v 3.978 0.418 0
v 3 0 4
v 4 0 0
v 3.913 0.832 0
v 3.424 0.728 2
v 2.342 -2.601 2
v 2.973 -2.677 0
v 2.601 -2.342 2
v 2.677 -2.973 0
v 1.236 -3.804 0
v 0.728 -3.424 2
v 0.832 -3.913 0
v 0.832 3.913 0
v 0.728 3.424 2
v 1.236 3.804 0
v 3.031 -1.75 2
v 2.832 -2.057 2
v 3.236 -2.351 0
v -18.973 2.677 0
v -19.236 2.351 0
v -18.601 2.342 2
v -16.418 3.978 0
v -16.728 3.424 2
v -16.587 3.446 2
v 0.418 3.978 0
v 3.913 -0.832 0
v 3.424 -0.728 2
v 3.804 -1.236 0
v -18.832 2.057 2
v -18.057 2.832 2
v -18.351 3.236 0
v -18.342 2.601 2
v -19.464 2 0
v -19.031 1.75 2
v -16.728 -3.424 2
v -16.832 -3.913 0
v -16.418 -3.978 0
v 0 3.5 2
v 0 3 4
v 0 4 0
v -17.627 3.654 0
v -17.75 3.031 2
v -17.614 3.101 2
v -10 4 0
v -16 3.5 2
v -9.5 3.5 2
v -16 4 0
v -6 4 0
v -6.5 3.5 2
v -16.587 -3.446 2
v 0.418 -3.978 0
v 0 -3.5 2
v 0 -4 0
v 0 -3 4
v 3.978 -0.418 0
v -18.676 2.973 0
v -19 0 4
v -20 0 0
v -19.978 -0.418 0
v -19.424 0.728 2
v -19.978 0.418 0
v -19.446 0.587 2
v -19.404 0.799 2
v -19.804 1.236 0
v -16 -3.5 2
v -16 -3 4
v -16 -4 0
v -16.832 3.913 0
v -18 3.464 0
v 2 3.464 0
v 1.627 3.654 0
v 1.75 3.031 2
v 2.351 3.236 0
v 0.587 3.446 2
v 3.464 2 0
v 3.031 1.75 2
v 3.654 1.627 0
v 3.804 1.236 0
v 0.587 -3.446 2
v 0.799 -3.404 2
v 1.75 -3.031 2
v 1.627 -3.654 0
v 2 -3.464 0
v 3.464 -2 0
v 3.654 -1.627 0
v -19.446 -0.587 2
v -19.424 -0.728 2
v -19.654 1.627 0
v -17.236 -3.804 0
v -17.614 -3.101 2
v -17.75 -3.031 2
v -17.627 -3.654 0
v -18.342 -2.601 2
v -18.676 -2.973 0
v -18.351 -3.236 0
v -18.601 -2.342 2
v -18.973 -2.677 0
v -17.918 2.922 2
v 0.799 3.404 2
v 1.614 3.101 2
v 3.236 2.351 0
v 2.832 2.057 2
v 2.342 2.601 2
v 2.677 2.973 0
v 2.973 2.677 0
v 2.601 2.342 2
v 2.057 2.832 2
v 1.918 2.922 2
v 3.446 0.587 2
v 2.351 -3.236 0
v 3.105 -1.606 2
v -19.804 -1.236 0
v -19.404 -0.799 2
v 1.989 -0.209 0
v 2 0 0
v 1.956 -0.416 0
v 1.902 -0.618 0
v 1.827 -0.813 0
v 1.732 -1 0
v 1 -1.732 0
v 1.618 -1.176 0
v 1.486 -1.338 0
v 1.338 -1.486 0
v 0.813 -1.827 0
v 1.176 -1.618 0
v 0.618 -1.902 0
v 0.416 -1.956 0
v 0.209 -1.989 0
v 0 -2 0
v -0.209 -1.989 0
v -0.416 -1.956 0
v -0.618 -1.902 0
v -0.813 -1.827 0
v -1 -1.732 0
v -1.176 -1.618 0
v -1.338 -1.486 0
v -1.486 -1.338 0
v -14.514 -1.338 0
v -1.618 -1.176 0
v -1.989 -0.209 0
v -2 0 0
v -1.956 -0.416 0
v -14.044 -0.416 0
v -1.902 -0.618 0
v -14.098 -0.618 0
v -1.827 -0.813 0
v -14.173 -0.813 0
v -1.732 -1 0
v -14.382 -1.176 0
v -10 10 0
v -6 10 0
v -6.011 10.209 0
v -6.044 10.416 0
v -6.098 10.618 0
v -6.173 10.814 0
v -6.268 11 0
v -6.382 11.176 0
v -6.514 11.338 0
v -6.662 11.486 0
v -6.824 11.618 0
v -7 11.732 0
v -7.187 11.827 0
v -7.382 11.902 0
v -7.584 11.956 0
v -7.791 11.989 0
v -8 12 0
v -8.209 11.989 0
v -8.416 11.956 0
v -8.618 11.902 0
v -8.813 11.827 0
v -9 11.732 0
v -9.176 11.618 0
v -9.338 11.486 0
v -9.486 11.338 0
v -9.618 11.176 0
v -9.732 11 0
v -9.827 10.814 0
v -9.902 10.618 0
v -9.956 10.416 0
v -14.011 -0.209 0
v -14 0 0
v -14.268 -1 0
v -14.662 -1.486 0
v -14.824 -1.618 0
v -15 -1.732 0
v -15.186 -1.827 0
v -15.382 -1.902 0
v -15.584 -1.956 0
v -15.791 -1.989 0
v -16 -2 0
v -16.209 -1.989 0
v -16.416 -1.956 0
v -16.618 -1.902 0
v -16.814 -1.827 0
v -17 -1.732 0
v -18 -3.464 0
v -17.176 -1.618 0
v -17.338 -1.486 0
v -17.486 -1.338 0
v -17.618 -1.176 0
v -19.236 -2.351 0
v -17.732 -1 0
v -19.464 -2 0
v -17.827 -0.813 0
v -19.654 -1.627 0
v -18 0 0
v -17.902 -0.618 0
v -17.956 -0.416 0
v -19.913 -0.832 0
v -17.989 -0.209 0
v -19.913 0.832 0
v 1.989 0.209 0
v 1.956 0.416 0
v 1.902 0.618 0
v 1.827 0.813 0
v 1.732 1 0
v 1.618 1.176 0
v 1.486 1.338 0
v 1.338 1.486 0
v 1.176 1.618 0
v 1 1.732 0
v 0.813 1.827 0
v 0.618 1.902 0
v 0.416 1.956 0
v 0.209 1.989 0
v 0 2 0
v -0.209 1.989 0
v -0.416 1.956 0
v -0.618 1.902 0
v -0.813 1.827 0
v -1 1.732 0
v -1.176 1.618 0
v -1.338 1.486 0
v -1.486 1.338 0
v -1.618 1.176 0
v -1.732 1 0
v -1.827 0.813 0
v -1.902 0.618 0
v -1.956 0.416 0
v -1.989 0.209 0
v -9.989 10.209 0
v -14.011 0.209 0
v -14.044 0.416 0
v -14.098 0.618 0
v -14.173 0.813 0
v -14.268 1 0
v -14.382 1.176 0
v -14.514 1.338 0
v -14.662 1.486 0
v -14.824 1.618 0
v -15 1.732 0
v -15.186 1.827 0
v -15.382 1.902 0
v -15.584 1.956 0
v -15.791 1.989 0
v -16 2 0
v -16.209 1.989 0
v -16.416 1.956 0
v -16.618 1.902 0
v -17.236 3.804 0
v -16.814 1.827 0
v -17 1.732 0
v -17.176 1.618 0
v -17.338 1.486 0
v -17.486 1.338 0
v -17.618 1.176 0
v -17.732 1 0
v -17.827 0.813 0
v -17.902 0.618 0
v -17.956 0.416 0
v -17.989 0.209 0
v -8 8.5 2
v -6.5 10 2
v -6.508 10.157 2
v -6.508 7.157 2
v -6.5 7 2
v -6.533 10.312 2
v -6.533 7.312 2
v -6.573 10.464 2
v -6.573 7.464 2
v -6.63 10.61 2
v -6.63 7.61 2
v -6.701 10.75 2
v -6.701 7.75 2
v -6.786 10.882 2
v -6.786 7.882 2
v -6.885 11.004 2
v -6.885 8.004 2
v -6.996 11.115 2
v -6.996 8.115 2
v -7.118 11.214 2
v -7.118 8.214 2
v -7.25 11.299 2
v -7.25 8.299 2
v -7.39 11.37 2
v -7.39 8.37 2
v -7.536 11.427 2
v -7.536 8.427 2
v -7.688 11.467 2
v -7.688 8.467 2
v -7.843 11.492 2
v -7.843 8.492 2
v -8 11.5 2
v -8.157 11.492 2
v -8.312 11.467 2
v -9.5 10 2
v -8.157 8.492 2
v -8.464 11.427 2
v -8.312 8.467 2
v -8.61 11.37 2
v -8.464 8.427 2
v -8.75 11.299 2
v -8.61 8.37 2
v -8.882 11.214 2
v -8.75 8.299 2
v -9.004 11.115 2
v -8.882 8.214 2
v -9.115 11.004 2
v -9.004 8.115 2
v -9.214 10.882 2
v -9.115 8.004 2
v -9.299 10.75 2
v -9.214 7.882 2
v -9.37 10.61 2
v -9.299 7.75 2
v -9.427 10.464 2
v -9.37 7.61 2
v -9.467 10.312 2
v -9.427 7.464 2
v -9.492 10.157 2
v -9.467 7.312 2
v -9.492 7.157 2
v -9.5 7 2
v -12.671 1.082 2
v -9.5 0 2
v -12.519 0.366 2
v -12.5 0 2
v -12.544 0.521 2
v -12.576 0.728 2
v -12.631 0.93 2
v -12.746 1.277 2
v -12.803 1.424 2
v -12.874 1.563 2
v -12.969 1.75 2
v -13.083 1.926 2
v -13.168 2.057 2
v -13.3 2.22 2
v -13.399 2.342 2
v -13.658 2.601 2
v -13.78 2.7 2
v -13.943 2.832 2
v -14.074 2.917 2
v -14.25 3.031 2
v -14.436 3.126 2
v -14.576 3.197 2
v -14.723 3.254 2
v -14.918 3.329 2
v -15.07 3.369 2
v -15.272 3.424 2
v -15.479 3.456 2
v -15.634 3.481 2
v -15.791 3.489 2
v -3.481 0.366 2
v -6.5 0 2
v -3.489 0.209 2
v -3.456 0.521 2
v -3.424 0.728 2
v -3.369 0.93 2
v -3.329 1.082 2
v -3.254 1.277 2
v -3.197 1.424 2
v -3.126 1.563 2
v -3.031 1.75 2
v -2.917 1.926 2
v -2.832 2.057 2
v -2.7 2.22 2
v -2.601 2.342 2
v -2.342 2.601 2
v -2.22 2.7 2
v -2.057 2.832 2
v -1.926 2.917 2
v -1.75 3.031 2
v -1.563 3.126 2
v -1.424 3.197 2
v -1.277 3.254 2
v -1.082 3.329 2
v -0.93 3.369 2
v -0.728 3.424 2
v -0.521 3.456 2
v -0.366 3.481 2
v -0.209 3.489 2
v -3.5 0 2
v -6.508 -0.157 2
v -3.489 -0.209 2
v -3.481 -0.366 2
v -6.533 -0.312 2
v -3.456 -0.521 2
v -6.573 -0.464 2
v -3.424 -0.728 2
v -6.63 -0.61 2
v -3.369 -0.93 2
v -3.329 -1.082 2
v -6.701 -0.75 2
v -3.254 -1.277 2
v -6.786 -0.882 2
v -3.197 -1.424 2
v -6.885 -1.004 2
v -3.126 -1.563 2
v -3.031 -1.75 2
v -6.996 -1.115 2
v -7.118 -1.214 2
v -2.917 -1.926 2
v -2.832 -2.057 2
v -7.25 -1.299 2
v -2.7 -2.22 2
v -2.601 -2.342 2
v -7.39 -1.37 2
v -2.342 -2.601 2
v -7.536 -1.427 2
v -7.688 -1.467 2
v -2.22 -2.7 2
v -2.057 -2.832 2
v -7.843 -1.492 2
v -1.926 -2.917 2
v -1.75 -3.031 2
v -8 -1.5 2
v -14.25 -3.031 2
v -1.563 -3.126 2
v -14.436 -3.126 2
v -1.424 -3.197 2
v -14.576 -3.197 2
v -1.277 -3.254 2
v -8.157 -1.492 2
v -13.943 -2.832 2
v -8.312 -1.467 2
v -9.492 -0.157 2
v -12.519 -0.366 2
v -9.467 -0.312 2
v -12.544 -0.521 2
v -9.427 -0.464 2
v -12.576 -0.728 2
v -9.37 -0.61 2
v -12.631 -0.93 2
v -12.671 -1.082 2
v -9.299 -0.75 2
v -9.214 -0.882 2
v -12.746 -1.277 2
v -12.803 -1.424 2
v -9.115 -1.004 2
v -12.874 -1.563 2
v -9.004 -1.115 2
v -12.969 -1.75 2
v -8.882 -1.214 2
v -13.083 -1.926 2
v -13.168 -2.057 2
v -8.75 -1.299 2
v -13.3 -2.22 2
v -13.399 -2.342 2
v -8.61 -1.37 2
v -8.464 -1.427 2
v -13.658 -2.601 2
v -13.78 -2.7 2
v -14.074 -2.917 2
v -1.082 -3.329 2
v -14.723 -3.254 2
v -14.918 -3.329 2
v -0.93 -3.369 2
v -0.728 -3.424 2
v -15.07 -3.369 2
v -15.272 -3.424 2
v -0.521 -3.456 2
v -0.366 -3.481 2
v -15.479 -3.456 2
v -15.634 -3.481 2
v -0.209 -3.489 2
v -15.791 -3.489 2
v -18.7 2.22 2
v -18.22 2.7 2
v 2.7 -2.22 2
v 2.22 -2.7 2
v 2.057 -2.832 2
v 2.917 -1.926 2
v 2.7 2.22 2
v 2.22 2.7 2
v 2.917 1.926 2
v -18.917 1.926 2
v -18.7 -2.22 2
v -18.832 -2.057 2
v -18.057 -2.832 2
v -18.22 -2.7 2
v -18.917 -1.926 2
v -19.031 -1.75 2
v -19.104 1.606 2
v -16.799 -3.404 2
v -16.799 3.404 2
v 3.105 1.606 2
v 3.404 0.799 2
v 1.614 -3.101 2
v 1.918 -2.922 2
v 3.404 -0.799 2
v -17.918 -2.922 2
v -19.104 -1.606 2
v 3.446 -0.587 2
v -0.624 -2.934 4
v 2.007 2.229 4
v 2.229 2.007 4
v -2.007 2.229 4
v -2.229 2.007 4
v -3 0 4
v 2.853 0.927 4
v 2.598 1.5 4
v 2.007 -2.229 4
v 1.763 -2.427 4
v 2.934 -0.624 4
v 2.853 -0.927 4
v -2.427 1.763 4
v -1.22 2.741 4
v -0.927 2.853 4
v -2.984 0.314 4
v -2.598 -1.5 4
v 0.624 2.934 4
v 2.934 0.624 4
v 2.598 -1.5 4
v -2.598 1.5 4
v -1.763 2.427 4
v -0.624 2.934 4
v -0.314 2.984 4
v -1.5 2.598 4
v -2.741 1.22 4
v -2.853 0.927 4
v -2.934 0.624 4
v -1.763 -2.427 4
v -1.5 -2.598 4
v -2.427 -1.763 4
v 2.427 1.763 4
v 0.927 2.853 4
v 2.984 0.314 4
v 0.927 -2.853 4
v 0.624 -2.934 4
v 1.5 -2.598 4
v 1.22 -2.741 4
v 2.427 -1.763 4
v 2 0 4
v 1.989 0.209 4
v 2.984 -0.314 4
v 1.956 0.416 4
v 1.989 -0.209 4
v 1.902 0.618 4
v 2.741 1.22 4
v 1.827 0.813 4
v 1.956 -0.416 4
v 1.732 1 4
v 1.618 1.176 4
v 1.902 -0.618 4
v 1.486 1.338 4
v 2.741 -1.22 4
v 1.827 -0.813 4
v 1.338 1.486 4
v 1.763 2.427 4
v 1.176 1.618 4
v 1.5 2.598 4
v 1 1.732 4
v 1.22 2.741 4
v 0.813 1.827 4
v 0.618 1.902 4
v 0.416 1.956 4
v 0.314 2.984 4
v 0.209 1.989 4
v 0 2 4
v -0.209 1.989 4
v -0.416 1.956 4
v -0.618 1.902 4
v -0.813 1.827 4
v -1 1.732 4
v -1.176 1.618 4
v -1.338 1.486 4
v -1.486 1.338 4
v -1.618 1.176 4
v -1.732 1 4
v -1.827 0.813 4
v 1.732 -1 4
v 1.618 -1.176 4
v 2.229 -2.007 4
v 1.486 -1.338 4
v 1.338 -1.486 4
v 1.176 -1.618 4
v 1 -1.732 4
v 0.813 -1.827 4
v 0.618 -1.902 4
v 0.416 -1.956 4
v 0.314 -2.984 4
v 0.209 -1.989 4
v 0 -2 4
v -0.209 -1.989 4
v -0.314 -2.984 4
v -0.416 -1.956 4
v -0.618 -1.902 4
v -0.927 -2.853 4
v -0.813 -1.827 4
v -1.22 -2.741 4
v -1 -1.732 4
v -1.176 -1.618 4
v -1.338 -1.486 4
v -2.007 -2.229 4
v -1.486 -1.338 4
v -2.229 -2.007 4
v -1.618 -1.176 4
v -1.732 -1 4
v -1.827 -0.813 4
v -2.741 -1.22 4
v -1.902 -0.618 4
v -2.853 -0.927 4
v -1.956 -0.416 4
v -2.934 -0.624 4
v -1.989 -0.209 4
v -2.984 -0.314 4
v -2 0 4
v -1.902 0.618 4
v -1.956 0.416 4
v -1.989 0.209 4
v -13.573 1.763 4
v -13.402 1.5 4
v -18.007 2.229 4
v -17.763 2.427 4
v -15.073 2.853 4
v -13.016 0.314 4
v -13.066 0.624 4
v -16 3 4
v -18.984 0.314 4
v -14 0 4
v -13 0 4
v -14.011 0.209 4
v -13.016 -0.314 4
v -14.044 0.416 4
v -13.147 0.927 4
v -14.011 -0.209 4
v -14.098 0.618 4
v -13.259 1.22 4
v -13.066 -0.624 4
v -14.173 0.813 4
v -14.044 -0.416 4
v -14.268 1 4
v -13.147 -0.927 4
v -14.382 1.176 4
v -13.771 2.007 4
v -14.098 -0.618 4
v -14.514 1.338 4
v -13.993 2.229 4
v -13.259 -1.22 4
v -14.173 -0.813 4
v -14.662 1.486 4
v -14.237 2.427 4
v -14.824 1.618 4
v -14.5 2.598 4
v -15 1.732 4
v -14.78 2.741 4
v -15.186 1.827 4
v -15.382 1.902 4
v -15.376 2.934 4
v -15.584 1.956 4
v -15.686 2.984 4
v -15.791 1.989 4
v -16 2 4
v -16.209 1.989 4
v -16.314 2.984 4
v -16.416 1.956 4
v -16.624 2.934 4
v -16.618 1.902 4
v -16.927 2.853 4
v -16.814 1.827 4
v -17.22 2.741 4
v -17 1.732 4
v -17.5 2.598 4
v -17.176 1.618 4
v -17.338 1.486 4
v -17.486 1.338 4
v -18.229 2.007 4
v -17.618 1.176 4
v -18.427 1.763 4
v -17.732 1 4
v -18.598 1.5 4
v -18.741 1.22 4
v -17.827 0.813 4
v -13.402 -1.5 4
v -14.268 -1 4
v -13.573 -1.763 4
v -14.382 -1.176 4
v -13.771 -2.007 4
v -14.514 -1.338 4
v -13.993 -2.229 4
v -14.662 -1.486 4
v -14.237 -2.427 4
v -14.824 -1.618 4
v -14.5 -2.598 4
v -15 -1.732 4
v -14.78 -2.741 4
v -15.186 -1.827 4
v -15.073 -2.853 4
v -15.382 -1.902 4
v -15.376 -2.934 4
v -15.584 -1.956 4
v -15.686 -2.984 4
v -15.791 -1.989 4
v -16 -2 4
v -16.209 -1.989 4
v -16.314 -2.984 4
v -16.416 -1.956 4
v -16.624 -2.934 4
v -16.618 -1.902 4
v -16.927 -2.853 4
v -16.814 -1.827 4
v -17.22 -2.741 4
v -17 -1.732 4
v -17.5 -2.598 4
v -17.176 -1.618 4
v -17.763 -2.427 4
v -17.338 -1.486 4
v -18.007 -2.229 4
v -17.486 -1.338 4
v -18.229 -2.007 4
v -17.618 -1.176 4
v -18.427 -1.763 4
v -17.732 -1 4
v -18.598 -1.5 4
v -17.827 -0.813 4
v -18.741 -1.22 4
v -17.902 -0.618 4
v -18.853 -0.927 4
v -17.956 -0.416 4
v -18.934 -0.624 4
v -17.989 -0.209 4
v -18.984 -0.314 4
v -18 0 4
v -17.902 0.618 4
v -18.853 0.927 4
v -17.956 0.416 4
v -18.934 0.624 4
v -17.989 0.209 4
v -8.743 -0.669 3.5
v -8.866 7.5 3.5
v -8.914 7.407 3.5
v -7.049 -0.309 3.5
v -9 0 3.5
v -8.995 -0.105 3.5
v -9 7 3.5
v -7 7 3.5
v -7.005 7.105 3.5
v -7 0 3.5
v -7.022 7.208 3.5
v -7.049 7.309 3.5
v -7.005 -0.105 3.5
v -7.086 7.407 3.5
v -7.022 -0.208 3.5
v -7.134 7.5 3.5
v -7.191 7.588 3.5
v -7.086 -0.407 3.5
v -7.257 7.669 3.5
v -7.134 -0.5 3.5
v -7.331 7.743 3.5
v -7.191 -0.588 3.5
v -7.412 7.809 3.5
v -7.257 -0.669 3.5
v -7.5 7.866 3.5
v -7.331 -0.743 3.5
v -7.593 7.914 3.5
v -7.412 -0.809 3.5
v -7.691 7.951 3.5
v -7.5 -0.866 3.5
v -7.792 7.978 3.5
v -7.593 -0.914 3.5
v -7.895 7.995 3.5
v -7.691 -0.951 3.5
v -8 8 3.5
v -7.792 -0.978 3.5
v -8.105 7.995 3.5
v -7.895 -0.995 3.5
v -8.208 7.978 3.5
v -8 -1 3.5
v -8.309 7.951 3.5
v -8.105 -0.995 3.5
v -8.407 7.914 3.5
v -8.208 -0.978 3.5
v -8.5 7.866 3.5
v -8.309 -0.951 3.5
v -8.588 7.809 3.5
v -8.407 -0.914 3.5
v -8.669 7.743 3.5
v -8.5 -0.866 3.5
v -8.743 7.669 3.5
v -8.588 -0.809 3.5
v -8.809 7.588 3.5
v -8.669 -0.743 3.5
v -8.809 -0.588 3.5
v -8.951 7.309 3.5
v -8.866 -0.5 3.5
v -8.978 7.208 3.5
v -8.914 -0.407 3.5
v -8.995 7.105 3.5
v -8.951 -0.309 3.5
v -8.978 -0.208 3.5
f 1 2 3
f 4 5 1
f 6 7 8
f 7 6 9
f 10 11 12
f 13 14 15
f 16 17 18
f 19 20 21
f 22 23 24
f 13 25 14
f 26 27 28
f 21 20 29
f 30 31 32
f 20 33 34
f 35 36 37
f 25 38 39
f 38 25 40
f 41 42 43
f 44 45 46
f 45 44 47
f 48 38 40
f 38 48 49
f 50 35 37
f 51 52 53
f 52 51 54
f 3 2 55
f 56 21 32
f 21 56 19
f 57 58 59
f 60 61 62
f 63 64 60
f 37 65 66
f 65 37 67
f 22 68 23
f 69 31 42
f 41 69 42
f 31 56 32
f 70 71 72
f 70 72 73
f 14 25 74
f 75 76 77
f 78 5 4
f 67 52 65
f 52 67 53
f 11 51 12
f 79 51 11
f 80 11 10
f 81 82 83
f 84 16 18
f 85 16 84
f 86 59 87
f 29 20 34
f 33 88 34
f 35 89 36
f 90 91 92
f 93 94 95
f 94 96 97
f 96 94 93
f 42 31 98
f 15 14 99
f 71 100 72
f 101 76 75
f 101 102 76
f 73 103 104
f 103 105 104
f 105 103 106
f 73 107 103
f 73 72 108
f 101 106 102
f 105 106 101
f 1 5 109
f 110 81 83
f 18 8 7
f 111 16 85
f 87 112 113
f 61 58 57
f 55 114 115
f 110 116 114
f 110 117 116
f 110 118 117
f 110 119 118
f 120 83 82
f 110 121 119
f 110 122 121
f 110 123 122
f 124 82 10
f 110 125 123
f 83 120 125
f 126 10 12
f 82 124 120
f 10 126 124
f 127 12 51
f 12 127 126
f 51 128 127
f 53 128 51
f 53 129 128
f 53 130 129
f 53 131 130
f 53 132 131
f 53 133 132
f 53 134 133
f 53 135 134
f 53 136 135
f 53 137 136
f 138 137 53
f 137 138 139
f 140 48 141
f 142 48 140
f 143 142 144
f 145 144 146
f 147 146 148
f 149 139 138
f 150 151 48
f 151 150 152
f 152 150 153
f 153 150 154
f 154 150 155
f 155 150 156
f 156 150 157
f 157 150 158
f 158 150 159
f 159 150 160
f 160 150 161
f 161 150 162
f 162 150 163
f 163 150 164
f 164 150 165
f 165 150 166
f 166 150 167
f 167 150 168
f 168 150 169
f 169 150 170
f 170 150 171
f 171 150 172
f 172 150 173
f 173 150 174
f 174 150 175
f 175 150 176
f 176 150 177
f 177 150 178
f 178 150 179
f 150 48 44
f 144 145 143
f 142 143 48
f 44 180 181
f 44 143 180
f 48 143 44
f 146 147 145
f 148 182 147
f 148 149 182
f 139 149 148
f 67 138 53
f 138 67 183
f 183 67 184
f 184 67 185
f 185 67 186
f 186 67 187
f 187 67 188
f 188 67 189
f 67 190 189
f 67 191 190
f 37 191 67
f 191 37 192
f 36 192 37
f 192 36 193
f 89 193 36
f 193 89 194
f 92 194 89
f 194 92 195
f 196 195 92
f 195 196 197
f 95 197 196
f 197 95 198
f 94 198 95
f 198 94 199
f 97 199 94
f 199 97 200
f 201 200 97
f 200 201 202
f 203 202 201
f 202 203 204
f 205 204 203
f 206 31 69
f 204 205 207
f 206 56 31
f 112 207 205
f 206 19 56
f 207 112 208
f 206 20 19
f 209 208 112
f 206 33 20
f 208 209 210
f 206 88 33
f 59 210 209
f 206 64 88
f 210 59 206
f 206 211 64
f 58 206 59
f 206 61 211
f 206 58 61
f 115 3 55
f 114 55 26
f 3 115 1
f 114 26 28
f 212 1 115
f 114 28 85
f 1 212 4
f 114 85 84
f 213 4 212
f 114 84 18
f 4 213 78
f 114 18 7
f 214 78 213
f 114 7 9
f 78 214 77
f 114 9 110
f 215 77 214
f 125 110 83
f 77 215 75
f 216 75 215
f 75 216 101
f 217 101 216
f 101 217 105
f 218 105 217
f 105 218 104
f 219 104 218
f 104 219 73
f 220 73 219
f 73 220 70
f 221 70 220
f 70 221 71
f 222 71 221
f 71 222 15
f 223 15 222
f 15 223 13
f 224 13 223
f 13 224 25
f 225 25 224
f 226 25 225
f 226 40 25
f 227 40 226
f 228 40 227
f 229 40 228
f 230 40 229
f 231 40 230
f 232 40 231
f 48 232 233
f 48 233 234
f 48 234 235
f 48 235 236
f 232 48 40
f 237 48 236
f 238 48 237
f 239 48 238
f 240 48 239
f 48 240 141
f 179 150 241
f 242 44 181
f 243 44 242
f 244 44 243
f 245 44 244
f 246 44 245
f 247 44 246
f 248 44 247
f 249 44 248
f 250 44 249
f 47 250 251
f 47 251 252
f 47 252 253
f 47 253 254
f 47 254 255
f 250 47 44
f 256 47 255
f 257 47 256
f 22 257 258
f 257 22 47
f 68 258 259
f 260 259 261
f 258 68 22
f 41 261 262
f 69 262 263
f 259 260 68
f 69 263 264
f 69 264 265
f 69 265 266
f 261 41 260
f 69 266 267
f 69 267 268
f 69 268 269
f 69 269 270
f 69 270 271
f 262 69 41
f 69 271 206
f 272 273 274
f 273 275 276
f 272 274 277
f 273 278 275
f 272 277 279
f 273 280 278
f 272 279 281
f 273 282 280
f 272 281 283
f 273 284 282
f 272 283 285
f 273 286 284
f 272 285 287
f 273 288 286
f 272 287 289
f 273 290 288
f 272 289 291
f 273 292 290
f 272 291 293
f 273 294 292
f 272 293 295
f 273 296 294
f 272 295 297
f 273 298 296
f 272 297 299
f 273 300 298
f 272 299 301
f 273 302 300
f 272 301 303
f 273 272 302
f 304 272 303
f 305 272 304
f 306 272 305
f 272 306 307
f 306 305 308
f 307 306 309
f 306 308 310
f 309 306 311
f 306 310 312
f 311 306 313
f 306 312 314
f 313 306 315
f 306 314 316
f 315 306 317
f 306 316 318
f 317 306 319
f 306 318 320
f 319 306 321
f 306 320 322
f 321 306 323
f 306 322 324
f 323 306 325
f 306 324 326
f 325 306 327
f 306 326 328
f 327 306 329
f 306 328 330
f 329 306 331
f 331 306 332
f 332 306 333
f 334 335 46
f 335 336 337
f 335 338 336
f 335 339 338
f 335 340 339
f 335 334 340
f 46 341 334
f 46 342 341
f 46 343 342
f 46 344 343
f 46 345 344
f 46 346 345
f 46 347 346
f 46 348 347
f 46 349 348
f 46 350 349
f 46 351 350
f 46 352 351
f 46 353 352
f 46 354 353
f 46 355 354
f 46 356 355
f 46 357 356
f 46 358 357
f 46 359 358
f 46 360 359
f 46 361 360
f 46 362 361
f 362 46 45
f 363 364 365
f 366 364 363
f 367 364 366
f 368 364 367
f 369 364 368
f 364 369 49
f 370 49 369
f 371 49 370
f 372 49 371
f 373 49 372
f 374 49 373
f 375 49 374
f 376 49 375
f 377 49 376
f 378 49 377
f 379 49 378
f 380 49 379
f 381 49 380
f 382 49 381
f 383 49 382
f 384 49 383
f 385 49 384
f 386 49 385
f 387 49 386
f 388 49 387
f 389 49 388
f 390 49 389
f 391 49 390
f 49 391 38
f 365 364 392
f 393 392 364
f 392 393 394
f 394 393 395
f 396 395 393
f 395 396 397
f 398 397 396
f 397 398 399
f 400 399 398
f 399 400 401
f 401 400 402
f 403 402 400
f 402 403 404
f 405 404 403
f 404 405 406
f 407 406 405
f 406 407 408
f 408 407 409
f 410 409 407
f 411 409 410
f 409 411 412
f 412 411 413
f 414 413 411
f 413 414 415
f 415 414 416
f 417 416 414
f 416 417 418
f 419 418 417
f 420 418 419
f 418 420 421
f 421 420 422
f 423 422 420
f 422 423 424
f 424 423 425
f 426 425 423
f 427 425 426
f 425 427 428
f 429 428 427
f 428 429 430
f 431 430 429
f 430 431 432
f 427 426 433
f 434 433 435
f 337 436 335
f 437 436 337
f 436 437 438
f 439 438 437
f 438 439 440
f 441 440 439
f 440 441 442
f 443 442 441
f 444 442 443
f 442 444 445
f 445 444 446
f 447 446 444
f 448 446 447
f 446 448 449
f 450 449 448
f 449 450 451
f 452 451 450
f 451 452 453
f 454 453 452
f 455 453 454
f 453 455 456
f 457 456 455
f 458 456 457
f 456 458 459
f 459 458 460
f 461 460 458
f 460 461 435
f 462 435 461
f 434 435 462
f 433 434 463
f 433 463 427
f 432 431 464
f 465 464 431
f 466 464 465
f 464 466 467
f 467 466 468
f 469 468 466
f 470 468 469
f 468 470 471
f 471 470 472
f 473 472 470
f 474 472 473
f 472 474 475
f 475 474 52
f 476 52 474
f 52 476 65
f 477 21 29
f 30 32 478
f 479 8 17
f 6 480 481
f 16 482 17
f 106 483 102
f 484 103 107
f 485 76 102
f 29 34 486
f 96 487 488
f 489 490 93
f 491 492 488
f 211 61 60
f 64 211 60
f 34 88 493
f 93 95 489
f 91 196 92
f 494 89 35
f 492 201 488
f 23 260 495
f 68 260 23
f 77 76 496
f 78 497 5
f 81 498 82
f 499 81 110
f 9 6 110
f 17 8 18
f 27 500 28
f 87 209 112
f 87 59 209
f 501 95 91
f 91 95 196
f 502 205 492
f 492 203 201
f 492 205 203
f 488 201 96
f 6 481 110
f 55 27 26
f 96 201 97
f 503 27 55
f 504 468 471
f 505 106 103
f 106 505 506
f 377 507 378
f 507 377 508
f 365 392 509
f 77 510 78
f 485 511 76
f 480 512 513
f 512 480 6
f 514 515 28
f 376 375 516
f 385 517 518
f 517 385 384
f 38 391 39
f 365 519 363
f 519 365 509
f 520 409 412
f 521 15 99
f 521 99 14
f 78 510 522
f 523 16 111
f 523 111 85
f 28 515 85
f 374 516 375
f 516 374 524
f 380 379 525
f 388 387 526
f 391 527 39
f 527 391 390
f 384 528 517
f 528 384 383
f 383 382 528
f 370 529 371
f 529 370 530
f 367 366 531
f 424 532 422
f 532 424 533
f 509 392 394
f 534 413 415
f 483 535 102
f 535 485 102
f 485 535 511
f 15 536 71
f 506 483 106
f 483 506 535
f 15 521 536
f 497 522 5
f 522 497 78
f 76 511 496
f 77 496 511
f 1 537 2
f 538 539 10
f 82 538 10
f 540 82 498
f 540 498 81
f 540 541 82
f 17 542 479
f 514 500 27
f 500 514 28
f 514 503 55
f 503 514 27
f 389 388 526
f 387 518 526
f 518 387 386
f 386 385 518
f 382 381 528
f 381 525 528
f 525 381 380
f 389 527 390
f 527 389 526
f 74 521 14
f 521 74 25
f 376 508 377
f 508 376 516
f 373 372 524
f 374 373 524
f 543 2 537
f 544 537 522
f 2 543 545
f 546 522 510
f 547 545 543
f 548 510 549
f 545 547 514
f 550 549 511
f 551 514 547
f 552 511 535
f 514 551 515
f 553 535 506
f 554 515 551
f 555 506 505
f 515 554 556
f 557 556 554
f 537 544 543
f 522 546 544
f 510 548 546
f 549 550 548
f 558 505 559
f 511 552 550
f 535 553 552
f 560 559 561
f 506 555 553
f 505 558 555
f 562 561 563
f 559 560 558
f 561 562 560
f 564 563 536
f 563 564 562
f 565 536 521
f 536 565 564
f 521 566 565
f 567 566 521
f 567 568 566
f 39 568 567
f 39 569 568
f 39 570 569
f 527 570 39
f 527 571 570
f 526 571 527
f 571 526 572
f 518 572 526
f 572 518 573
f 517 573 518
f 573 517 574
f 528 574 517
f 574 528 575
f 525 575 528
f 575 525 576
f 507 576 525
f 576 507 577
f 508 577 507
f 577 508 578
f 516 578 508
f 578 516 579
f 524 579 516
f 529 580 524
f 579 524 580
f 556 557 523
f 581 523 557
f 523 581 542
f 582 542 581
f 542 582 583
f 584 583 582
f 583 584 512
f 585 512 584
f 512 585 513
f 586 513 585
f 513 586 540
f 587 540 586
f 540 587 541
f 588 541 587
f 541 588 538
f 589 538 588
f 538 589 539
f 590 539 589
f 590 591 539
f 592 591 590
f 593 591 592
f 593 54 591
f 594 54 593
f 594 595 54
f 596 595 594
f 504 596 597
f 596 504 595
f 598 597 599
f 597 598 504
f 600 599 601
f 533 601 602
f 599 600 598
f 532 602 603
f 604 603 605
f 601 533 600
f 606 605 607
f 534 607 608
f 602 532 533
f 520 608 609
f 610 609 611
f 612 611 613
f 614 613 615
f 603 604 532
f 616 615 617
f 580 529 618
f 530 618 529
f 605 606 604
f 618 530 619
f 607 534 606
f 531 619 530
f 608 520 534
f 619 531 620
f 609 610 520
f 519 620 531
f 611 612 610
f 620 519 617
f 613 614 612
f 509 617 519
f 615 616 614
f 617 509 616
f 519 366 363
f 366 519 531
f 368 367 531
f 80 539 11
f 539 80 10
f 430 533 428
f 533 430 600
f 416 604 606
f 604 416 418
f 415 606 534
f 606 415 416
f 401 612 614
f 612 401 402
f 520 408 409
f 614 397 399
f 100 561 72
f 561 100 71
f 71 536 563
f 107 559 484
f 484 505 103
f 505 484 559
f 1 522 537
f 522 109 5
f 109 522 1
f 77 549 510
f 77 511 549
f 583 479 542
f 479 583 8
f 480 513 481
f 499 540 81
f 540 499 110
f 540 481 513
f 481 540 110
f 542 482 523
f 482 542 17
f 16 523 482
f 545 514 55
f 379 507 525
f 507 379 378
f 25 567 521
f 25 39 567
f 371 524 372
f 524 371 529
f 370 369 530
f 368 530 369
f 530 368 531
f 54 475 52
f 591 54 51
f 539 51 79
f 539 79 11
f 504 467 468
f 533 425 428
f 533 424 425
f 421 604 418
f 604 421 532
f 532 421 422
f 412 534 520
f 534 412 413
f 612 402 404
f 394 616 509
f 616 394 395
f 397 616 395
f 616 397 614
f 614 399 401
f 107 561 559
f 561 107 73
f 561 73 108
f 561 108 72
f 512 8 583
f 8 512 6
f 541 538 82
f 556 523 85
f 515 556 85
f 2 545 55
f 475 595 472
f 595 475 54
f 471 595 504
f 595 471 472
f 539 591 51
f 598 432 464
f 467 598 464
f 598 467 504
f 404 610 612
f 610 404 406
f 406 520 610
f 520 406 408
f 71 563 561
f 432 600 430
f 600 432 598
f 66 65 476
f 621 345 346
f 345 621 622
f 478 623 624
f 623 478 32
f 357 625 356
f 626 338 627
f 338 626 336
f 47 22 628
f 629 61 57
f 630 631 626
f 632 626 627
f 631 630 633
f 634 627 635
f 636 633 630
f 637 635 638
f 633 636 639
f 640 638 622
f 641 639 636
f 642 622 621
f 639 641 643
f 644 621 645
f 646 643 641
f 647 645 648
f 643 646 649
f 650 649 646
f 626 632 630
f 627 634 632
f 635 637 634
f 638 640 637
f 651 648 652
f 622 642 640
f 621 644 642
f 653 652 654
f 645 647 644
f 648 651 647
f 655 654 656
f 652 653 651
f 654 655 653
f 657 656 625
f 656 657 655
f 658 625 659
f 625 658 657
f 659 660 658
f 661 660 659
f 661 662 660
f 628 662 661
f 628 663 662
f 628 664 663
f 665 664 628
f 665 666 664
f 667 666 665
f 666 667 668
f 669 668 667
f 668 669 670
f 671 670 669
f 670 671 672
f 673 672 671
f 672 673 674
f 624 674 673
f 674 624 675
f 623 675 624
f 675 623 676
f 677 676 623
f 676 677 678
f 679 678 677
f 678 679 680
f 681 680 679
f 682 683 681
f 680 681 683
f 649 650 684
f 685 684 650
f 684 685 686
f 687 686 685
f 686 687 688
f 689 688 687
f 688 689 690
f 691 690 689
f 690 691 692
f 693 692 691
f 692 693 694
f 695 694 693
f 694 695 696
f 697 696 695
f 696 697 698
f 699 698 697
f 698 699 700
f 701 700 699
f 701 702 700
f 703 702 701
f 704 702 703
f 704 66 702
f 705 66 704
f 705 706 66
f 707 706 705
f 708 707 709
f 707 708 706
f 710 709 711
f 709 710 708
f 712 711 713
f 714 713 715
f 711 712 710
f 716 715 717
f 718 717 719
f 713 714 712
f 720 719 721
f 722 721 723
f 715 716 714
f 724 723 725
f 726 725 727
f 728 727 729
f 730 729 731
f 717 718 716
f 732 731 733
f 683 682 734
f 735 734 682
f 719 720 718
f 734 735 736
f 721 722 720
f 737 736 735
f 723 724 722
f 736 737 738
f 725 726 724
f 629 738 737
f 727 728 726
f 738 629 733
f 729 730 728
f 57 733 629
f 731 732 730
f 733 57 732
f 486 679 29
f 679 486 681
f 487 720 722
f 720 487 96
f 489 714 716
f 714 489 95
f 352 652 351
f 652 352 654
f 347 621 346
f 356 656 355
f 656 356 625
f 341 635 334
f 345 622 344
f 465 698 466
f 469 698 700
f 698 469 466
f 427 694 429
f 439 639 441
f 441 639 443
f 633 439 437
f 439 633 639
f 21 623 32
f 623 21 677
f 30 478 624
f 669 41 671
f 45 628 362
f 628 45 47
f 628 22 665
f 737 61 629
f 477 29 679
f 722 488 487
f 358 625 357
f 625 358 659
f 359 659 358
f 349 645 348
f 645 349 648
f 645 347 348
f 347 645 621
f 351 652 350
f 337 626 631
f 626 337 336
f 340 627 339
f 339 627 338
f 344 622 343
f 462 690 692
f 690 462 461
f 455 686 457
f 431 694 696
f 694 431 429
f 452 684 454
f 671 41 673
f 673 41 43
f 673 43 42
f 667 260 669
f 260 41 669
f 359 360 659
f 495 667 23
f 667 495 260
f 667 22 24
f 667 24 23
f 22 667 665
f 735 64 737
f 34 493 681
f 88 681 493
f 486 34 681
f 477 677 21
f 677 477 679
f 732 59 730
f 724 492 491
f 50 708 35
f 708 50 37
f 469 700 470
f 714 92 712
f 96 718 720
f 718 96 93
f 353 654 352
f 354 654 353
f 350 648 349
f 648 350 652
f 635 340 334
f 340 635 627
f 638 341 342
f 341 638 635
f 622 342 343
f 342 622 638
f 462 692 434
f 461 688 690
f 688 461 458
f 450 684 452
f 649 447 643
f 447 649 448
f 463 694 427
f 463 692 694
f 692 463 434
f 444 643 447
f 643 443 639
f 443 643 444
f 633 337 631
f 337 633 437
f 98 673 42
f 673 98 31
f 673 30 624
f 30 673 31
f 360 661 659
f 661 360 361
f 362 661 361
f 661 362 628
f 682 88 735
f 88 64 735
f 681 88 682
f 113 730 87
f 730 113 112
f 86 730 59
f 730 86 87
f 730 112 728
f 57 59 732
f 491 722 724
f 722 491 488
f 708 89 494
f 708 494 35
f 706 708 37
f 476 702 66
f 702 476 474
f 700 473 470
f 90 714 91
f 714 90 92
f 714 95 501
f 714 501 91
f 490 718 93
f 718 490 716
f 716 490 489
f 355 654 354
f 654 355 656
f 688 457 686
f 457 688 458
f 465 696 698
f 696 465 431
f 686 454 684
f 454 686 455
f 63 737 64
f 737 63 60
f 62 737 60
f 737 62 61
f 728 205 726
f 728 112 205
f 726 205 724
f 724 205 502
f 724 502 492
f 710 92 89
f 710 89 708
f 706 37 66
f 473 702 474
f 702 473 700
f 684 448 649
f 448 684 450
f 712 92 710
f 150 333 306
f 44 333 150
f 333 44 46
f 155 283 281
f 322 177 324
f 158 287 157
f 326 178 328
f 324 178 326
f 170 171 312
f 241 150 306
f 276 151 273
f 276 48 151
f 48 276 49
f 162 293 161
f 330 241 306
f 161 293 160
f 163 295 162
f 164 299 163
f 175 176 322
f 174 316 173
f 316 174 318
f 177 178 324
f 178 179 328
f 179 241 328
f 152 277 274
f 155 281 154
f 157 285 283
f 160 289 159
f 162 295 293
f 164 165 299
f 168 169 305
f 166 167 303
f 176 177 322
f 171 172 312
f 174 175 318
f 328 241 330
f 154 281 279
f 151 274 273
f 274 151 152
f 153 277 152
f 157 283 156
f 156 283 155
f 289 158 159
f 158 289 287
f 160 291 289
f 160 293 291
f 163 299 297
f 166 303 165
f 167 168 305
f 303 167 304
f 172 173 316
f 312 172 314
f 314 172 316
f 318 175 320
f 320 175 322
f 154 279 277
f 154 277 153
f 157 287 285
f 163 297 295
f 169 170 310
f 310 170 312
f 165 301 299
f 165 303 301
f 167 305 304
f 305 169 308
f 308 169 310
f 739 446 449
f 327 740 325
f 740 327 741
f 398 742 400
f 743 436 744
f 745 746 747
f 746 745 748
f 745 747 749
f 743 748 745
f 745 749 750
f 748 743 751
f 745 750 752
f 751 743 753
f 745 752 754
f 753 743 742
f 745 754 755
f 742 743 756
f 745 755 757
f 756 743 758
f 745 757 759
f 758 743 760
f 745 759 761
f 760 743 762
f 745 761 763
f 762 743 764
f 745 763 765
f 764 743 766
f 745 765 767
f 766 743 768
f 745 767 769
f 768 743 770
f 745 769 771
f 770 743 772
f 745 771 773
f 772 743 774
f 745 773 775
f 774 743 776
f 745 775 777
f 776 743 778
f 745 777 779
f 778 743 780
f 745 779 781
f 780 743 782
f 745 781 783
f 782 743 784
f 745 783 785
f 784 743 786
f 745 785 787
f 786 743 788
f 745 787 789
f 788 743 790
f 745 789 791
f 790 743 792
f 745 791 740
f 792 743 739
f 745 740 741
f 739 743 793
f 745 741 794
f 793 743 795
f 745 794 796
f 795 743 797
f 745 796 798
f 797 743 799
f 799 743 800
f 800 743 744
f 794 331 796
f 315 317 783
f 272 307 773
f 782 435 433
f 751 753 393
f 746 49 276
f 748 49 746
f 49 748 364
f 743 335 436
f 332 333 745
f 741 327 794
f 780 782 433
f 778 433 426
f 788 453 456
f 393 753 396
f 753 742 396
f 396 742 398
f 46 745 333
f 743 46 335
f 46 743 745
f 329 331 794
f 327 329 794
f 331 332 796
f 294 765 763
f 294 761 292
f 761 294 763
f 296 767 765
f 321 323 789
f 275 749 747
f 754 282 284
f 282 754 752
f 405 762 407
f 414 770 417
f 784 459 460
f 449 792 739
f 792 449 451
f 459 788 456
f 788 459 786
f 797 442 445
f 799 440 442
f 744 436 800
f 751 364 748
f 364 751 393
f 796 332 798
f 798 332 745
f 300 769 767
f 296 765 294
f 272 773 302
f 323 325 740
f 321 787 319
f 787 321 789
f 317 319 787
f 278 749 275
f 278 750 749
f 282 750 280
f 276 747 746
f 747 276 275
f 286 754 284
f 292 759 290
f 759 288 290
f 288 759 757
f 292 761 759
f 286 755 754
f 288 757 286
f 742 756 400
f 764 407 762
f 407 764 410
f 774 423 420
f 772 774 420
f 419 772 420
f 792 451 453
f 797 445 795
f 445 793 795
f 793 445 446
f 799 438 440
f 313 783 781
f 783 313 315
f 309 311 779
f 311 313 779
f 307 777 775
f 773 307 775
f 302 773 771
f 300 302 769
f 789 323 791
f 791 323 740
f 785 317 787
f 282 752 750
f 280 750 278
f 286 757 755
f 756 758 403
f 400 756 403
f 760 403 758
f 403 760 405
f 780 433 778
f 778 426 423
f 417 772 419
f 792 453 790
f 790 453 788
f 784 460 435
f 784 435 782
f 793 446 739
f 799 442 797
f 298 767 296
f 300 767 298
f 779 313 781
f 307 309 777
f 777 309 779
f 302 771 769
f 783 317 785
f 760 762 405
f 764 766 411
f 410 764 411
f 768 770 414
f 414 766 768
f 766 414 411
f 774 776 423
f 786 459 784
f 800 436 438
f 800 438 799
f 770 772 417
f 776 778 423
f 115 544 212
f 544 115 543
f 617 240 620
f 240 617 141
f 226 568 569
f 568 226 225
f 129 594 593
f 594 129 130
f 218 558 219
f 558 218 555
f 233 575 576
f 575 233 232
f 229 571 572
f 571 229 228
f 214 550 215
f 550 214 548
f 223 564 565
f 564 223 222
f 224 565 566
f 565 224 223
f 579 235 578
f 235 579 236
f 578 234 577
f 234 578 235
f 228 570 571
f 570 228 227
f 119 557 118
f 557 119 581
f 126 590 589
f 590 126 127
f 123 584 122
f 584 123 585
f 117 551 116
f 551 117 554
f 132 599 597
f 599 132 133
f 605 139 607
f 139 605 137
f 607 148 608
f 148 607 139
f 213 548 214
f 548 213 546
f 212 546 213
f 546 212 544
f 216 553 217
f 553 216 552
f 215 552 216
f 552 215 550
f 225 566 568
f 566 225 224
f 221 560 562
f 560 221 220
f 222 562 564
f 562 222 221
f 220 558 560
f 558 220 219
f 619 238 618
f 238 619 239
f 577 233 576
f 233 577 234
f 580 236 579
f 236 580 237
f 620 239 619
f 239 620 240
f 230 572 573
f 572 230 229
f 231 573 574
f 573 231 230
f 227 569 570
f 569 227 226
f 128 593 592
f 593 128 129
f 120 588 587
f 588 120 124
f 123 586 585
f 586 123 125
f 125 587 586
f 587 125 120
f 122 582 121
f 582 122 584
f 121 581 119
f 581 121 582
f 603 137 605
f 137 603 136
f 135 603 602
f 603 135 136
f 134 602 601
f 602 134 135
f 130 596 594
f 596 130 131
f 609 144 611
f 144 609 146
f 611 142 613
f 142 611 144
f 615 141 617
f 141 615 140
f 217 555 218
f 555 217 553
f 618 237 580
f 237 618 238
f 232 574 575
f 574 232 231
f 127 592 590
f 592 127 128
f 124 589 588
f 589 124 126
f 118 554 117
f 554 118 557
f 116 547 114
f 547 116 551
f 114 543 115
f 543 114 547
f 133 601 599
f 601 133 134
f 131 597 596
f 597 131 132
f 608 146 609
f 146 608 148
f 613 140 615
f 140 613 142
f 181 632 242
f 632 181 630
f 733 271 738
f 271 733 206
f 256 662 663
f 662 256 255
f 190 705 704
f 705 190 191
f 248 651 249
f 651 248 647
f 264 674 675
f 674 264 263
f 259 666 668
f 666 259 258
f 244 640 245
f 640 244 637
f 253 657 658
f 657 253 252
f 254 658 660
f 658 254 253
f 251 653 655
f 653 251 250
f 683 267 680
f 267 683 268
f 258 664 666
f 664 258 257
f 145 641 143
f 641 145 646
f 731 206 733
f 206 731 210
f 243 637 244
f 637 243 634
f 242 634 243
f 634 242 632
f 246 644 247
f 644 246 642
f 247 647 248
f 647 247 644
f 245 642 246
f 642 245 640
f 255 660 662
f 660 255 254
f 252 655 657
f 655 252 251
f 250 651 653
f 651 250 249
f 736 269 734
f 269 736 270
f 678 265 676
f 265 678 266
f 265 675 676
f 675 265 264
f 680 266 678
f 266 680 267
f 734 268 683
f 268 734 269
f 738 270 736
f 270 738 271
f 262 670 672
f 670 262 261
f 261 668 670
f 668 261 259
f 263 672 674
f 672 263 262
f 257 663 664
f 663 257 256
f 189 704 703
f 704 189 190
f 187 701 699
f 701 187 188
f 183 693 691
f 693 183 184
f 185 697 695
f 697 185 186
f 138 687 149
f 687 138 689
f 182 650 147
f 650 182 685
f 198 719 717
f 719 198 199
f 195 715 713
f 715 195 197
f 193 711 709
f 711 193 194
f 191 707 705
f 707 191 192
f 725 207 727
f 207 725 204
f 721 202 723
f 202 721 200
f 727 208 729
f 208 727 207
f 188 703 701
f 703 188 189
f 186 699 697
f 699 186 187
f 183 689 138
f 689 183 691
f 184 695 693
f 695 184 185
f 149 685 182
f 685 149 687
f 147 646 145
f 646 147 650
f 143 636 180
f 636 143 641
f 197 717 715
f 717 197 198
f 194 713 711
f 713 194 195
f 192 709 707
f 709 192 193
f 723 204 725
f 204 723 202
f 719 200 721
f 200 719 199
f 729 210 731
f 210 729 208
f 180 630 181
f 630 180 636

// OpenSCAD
module ring_stay(){
  difference(){
    union(){
      hull(){
        translate([0, 0, 0]) cylinder(r1=4, r2=3.5, h=2, center=false, $fn=60);
        translate([-16, 0, 0]) cylinder(r1=4, r2=3.5, h=2, center=false, $fn=60);
      }
      translate([0, 0, 0]) cylinder(r1=4, r2=3, h=4, center=false, $fn=60);
      translate([-16, 0, 0]) cylinder(r1=4, r2=3, h=4, center=false, $fn=60);
      hull(){
        translate([-8, 10, 0]) cylinder(r1=2, r2=1.5, h=2, center=false, $fn=60);
        translate([-8, 0, 0]) cylinder(r1=2, r2=1.5, h=2, center=false, $fn=60);
      }
      hull(){
        translate([-8, 7, 2]) cylinder(r1=1.5, r2=1, h=1.5, center=false, $fn=60);
        translate([-8, 0, 2]) cylinder(r1=1.5, r2=1, h=1.5, center=false, $fn=60);
      }
    }
    translate([0, 0, -0.5]) cylinder(r=2, h=6, center=false, $fn=60);
    translate([-16, 0, -0.5]) cylinder(r=2, h=6, center=false, $fn=60);
  }
}

ring_stay();
